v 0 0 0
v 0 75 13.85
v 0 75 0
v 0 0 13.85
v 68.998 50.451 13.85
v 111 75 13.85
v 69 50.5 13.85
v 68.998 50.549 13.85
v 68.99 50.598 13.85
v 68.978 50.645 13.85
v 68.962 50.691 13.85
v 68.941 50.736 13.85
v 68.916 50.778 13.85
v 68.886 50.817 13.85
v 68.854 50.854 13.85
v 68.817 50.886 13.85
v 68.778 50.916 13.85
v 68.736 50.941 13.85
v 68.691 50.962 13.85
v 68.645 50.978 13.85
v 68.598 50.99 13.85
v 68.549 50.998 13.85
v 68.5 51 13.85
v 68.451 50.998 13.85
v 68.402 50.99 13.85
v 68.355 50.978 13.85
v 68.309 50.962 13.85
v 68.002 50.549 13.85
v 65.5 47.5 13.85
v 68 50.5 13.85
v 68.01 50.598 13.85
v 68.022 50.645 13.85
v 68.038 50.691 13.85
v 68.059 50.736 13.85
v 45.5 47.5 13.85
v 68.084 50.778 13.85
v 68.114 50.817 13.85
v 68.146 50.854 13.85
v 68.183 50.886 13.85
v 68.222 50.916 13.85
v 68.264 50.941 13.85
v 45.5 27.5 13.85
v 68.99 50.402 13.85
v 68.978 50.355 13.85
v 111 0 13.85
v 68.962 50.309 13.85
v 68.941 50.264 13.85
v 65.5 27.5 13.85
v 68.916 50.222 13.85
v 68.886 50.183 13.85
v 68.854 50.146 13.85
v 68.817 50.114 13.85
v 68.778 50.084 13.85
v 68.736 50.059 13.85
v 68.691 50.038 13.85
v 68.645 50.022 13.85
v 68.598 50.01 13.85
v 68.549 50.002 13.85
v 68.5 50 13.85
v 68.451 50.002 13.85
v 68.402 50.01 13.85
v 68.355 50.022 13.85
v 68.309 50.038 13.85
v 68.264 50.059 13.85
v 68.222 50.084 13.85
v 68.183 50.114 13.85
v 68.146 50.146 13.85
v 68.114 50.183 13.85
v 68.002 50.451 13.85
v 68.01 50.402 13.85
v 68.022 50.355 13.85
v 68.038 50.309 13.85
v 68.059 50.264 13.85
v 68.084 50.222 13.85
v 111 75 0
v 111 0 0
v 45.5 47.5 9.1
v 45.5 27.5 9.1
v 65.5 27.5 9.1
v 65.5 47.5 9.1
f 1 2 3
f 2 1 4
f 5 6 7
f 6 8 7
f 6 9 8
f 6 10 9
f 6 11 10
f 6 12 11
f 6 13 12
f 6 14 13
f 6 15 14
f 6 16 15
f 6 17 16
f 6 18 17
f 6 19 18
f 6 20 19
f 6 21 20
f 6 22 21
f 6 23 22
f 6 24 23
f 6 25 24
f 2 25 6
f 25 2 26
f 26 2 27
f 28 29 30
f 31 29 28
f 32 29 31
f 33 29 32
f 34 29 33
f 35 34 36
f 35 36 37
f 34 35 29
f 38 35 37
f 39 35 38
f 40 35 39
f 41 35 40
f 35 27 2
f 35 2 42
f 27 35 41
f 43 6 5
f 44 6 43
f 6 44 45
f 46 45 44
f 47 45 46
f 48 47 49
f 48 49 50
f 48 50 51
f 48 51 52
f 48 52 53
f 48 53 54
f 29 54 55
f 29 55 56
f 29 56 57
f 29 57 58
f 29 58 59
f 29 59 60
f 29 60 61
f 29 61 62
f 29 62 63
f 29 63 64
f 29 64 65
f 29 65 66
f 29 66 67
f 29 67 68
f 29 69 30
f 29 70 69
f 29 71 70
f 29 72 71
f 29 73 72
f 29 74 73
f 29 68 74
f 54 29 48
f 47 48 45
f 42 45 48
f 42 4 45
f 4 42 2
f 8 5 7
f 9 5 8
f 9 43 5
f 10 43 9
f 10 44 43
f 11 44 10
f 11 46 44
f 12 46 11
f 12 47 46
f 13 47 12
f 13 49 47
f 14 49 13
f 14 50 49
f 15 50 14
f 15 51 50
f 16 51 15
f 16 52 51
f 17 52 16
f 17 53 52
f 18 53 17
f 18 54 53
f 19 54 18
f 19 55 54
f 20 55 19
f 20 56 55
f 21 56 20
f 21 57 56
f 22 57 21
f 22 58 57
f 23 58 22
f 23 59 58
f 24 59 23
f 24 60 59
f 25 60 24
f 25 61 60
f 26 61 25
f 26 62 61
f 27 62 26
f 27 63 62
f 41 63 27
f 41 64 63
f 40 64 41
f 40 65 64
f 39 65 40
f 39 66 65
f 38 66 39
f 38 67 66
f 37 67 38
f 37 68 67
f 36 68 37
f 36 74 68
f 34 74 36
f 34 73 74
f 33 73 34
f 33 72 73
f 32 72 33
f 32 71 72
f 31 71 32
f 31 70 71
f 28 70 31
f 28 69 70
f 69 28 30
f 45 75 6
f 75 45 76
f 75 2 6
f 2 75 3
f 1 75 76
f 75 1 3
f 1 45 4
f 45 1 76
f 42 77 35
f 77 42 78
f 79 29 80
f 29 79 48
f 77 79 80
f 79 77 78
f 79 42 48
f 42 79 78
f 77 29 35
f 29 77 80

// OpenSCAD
// Opentrons Calibration Adapter - Heater-shaker Module
// loadName: opentrons_calibration_adapter_heatershaker_module
// Auto-generated by labware_to_stl.py from Opentrons V2 labware definition

$fn = 64;

difference() {
    // ── Labware body ──────────────────────────────────────────────
    cube([111.0000, 75.0000, 13.8500]);

    // ── Well cutouts ──────────────────────────────────────────────
    // Well A1
    translate([45.5000, 27.5000, 9.1000])
        cube([20.0000, 20.0000, 5.7500]);
    // Well B1
    translate([68.5000, 50.5000, 13.8500])
        cylinder(h=1.0000, r=0.5000, $fn=$fn);
}
